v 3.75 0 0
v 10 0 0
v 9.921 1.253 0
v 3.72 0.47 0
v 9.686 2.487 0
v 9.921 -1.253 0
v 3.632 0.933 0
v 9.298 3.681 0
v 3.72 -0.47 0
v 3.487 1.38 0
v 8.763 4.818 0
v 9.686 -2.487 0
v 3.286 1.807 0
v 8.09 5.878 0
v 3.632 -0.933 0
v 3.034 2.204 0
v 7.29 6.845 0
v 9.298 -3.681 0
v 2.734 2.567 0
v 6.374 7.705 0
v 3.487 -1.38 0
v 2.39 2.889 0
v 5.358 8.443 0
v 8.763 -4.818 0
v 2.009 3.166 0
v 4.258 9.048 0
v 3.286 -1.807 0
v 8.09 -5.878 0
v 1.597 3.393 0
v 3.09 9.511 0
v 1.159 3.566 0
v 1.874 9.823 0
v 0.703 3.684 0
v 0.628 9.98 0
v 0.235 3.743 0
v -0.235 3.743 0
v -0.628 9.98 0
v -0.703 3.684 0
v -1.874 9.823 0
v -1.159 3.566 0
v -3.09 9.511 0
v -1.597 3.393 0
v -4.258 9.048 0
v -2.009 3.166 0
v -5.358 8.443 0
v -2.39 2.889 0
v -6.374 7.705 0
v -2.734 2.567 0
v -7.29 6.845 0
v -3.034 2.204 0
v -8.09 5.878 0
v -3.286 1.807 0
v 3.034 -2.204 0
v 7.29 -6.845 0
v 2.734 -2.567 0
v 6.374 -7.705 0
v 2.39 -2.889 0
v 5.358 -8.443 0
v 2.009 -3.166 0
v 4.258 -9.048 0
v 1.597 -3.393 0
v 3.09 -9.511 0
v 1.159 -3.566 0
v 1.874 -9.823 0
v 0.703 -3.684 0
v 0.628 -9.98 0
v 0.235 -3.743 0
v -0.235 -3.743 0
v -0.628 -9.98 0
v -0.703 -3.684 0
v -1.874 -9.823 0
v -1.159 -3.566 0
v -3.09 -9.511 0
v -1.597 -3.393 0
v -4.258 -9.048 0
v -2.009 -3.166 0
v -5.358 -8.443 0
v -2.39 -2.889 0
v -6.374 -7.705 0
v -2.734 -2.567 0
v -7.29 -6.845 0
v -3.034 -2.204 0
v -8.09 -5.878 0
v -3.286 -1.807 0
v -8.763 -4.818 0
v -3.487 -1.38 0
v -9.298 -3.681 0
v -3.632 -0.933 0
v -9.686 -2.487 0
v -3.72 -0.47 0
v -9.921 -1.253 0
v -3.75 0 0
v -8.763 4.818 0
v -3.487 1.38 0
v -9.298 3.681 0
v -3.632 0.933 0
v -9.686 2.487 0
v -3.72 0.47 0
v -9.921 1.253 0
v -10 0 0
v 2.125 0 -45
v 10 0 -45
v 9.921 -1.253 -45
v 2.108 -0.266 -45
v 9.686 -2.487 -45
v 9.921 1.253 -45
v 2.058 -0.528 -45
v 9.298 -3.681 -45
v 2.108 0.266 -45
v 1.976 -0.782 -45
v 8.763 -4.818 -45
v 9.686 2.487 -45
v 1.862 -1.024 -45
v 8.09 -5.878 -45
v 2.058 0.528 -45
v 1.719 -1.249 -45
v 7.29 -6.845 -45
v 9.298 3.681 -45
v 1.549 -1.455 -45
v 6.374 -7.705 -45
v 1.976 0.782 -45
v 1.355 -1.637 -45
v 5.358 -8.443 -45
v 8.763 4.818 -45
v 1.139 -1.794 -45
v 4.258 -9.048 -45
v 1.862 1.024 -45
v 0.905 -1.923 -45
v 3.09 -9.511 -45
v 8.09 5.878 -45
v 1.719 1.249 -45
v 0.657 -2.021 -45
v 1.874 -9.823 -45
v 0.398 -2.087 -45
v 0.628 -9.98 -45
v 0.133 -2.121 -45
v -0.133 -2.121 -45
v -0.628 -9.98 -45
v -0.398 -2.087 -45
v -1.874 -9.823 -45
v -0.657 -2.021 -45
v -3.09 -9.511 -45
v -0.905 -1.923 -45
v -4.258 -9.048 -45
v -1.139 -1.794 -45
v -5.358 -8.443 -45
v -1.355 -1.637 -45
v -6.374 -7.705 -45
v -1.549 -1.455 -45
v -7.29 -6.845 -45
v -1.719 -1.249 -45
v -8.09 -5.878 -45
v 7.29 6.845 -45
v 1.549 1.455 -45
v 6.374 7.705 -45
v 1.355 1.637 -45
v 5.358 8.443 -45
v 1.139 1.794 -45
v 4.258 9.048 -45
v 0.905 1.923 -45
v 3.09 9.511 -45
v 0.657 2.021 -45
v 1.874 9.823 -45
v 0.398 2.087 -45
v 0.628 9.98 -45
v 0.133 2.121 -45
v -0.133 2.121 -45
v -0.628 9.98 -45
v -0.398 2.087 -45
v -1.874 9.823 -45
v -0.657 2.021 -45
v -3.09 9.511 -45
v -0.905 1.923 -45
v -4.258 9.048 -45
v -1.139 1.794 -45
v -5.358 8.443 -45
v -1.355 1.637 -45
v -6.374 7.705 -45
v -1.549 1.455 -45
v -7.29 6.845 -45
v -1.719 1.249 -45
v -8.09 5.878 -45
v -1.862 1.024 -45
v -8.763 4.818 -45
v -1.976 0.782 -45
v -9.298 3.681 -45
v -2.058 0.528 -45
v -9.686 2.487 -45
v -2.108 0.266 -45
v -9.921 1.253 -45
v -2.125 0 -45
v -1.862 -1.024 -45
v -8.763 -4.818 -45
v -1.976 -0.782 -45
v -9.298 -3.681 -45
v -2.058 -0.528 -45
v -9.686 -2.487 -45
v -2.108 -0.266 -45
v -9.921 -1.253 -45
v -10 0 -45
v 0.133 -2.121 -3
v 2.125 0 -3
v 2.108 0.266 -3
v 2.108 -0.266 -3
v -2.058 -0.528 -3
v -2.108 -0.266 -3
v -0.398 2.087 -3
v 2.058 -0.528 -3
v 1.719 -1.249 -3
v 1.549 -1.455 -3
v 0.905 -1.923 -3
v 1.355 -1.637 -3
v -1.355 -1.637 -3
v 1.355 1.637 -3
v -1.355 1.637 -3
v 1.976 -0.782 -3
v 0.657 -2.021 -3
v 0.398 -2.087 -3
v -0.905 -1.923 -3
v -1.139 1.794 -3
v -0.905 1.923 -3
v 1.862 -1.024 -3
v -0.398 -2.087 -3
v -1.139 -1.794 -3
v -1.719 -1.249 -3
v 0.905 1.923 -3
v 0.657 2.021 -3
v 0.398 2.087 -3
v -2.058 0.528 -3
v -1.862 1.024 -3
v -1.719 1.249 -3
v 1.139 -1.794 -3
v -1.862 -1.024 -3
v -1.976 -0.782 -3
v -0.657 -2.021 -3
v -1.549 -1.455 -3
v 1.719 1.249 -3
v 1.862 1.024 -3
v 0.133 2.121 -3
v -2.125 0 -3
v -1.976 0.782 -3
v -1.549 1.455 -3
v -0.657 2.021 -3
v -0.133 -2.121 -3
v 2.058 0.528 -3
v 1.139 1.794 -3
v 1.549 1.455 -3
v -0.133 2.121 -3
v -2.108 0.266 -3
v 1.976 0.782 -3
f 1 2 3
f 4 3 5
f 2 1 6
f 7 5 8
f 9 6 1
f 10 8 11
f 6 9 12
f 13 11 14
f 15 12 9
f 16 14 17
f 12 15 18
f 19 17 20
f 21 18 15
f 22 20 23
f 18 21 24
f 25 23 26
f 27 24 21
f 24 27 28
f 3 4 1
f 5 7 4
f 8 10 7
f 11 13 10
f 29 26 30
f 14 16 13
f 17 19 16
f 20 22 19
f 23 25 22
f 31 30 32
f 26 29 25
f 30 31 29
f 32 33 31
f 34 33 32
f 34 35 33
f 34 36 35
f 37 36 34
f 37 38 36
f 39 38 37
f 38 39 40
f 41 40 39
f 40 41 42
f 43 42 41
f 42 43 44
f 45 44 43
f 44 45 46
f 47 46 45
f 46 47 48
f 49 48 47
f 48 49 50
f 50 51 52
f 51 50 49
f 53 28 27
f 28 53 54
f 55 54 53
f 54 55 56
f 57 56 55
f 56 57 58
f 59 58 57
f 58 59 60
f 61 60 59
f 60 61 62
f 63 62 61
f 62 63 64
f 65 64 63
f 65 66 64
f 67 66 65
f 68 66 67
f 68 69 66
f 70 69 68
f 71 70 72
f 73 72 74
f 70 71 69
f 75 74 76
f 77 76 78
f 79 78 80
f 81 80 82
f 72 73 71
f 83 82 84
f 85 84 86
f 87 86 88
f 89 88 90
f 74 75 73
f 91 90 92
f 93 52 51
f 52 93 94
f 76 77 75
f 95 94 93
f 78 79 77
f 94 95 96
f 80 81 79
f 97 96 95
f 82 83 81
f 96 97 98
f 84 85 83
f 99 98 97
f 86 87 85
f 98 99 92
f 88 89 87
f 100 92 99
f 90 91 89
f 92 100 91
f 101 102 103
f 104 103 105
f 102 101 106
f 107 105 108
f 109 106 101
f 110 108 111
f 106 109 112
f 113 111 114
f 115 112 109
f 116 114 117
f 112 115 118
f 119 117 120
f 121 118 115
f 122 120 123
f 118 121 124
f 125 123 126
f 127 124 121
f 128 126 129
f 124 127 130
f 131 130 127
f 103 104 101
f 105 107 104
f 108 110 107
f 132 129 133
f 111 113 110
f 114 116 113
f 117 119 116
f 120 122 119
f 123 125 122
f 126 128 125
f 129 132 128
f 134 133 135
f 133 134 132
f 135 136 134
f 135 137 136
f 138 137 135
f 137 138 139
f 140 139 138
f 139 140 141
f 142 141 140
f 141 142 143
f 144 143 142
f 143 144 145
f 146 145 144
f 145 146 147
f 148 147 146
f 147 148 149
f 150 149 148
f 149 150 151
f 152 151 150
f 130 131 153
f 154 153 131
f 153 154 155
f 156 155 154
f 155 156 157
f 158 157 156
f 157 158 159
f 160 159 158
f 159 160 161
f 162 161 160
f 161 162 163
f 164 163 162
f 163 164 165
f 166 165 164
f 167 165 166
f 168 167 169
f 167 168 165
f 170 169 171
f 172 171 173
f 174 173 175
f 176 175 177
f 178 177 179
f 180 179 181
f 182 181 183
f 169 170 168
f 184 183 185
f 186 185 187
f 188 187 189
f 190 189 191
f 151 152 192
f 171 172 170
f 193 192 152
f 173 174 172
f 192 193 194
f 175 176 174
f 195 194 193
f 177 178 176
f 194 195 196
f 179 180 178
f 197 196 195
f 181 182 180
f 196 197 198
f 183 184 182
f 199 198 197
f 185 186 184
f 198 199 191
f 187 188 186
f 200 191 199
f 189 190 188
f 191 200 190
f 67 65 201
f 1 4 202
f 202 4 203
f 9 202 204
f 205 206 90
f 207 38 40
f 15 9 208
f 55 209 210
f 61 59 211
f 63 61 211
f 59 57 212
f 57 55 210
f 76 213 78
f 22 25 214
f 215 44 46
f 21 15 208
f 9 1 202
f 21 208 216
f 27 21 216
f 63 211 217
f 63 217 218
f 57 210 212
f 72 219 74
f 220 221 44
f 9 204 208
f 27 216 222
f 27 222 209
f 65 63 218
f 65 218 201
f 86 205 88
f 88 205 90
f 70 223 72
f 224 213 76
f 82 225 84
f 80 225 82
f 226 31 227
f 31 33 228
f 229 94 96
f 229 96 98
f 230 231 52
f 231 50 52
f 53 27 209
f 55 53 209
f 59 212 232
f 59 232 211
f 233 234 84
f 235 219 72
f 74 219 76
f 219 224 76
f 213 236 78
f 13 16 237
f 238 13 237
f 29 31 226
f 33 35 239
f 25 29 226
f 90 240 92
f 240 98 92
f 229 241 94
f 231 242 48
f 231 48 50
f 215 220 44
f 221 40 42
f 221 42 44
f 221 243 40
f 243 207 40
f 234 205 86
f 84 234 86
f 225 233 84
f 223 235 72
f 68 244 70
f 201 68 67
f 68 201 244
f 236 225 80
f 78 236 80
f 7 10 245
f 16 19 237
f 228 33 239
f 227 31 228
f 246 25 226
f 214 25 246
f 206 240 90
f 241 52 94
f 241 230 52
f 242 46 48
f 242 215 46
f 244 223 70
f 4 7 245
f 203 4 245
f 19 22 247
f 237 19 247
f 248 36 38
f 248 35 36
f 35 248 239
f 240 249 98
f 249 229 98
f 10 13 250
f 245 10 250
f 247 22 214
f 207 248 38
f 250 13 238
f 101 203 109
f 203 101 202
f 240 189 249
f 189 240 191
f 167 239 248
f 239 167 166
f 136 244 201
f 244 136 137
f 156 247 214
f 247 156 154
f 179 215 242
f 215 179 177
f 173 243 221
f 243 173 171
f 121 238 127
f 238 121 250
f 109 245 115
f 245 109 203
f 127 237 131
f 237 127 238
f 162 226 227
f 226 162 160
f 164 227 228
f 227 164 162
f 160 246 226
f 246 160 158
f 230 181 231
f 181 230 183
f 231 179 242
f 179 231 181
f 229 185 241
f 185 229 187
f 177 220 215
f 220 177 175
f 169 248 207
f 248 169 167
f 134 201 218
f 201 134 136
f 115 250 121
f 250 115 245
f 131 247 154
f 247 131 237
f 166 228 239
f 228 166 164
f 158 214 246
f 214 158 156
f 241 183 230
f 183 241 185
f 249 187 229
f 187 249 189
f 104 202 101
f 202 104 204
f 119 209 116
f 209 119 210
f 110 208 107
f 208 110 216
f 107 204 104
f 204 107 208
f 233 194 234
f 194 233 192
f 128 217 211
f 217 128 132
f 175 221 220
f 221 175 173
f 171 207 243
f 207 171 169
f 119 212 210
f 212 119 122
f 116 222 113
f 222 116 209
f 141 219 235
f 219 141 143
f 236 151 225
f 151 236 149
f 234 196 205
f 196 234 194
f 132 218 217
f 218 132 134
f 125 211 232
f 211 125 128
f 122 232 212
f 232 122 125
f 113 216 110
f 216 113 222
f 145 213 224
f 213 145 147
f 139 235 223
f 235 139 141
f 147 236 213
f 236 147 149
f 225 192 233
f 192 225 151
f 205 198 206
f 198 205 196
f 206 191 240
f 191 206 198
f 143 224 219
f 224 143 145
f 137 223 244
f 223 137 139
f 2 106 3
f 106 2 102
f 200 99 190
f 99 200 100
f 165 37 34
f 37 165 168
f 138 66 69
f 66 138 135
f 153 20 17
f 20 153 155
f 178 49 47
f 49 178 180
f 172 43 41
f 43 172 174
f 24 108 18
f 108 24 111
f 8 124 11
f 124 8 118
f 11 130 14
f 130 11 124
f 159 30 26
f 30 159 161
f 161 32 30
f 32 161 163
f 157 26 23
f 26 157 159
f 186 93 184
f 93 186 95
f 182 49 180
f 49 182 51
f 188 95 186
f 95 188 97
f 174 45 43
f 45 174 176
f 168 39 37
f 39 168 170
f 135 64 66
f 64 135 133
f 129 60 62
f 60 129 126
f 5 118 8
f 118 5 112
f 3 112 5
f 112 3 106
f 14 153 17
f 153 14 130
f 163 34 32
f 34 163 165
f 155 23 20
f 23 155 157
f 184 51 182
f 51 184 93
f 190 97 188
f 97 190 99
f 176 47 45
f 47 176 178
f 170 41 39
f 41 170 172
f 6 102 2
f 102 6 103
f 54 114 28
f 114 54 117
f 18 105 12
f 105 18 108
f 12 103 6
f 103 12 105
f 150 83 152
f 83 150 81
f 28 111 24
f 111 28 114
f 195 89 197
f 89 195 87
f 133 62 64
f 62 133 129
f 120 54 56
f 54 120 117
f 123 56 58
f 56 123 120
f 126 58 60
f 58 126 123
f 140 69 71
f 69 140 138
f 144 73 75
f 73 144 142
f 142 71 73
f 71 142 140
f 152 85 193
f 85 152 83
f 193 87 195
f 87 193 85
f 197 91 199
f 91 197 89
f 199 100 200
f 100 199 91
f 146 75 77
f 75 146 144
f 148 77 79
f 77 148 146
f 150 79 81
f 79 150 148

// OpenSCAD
$fn = 50;


difference() {
	union() {
		translate(v = [0, 0, -45.0000000000]) {
			cylinder(h = 45, r = 10.0000000000);
		}
	}
	union() {
		translate(v = [0, 0, 0]) {
			rotate(a = [0, 0, 0]) {
				difference() {
					union() {
						#translate(v = [0, 0, -45.0000000000]) {
							cylinder(h = 45, r = 2.0000000000);
						}
						#translate(v = [0, 0, -3]) {
							cylinder(h = 3, r1 = 2.1250000000, r2 = 3.7500000000);
						}
						#translate(v = [0, 0, -45.0000000000]) {
							cylinder(h = 45, r = 2.1250000000);
						}
						#translate(v = [0, 0, -45.0000000000]) {
							cylinder(h = 45, r = 2.0000000000);
						}
					}
					union();
				}
			}
		}
	}
}
